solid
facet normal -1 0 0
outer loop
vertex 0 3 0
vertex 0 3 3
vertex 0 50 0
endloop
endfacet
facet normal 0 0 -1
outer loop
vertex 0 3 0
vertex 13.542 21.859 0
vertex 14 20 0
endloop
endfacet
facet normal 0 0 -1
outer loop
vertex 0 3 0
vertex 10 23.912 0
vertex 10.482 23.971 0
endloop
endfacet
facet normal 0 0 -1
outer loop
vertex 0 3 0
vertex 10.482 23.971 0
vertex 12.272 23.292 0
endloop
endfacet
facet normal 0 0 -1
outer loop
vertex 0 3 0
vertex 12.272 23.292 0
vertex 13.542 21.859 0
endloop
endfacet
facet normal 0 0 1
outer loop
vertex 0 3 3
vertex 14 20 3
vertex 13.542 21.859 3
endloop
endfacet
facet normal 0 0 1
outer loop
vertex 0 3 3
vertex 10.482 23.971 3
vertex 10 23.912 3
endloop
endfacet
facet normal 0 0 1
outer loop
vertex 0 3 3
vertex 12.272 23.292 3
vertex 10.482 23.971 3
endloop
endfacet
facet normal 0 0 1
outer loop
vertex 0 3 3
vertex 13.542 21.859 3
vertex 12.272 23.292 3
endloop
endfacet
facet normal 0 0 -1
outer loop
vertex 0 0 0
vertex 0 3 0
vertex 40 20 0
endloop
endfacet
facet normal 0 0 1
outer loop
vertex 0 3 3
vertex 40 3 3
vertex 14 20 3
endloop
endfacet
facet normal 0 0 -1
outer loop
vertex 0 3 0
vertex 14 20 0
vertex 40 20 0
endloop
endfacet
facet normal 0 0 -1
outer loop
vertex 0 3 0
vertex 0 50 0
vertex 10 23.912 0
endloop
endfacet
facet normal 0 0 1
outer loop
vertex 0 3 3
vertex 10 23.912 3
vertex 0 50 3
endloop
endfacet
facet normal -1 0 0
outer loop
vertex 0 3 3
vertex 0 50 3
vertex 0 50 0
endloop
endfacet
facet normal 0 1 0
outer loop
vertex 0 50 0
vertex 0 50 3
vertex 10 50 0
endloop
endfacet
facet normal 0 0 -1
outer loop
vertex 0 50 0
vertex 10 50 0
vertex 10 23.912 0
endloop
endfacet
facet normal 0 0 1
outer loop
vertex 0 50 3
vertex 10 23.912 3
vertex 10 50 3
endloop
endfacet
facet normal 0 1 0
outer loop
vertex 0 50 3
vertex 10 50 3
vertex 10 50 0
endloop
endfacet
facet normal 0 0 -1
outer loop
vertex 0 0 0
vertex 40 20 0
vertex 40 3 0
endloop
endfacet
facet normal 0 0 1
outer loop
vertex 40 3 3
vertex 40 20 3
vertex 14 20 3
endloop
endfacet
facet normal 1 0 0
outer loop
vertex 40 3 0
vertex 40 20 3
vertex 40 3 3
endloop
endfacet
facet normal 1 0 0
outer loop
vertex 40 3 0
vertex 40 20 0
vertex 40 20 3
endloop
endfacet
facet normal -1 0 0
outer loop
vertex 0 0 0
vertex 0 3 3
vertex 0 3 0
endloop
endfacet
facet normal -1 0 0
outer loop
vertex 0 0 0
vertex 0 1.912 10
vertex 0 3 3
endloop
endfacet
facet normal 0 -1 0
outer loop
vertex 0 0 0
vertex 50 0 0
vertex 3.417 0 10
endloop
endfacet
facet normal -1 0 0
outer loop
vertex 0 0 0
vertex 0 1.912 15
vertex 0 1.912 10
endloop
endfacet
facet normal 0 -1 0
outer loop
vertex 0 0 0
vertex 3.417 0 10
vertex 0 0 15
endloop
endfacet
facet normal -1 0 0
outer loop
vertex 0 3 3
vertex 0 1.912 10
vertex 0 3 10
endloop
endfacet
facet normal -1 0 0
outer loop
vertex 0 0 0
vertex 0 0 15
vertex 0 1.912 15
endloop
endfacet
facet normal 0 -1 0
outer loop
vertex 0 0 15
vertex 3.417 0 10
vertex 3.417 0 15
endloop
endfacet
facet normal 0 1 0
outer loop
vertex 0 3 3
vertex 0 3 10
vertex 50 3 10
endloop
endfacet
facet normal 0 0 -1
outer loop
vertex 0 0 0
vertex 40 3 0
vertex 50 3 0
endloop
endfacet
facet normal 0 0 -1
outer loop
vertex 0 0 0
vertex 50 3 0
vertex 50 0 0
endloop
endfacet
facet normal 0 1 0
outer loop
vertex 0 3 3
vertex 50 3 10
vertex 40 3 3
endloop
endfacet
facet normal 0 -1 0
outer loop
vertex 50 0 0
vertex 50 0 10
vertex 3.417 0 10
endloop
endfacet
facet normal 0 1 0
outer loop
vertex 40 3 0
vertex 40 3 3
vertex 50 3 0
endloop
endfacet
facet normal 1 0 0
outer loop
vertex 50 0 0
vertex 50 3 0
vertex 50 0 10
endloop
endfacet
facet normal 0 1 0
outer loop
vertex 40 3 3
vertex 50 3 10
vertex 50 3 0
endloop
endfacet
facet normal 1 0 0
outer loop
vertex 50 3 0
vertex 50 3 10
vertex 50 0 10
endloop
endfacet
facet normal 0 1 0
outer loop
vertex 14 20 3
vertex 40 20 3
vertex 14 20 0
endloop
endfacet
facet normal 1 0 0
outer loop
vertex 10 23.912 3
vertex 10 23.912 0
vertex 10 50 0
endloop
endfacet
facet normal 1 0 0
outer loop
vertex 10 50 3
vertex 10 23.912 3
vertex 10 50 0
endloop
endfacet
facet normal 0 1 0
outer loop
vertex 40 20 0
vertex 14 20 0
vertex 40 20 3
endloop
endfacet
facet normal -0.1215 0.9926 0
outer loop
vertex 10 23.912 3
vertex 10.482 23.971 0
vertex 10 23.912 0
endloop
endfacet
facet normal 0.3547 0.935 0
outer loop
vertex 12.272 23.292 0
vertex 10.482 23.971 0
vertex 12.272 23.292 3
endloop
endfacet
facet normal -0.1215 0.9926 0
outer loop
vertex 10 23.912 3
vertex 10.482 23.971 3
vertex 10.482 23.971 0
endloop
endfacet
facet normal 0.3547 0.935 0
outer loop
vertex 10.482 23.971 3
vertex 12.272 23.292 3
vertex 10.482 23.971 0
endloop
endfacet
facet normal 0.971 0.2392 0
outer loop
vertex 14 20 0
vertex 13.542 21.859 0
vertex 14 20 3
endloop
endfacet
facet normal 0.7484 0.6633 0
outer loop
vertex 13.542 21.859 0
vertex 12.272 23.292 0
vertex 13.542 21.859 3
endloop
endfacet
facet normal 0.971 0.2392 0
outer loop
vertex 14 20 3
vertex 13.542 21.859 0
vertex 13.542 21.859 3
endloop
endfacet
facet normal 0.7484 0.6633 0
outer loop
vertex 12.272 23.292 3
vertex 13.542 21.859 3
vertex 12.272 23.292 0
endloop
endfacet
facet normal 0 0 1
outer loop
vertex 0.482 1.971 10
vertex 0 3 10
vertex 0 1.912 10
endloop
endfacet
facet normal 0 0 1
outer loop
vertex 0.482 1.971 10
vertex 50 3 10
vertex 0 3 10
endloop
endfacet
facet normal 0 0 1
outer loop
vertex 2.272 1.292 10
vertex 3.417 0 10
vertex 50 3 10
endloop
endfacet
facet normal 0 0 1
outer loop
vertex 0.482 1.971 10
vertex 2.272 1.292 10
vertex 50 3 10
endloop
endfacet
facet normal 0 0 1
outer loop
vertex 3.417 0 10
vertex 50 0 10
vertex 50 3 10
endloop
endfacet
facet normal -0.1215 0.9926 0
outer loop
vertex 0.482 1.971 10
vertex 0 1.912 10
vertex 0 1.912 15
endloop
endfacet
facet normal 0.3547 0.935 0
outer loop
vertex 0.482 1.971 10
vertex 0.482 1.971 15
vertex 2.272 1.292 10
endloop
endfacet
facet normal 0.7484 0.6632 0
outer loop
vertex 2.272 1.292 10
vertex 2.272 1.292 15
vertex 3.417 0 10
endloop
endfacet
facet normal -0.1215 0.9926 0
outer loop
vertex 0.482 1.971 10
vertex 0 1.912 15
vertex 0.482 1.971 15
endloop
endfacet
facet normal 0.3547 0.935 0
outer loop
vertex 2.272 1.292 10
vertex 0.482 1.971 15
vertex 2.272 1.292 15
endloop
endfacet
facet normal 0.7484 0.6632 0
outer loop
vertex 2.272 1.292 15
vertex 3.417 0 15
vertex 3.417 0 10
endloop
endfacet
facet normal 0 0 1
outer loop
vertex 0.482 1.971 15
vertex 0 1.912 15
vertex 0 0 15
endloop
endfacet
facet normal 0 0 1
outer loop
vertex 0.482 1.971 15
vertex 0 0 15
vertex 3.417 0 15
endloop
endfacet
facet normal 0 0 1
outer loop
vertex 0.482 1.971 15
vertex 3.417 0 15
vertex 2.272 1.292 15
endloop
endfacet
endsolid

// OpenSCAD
// L-Bracket (L字金具)
// 水平面: 50mm (幅 Y軸方向) x 40mm (奥行き X軸方向)
// 垂直面: 50mm (幅 X軸方向) x 40mm (高さ Z軸方向)

// パラメータ設定
plate_thickness = 3; // 板厚 (mm)
flange_length = 50;   // 長さ (mm) - 水平方向と垂直方向の長さ
flange_width = 40;    // 幅/奥行き/高さ (mm)

// 皿穴パラメータ (M4 countersink)
hole_diameter_through = 4.5;  // 貫通穴 Φ4.5mm
hole_diameter_countersink = 8; // 皿座面 Φ8mm
hole_depth = 2;                // 深さ (mm)

// オフセット設定
offset_from_edge = 10;          // 縁からのオフセット (mm)

// --- 幾何形状の定義 ---

// 1. 水平面フランジ (Horizontal Flange - X-Y面)
module horizontal_flange() {
    cube([flange_width, flange_length, plate_thickness]);
}

// 2. 垂直面フランジ (Vertical Flange - X-Z面)
module vertical_flange() {
    cube([flange_length, plate_thickness, flange_width]);
}

// 3. 穴の配置計算と実行関数
module create_countersunk_holes(face_normal_axis, face_offset_axis, length, width) {
    // 面の中心線上の位置を定義 (左右対称に2個)
    // 中心線 = width / 2
    // オフセットされた位置 = center - offset_from_edge, center + offset_from_edge

    // 水平面フランジの穴 (Y方向に走る、X-Z面に出る)
    // 面の中心線: X=20, Z=20付近。長さ50mmに沿って配置。
    // 左右対称に2個を配置するため、中心線に対して±offset_from_edgeの位置を採用する。

    // 水平面 (Y軸方向の穴)
    // 中心 Y = flange_length / 2 (25mm)
    // X座標: 20 - 10 = 10, 20 + 10 = 30

    // 垂直面 (X軸方向の穴)
    // 中心 X = flange_length / 2 (25mm)
    // Z座標: 20 - 10 = 10, 20 + 10 = 30

    // 注: この実装は、各フランジの中心線に対して左右対称に配置されることを保証します。

    // 水平面上の穴 (Y軸方向)
    translate([offset_from_edge, 0, 0]) {
        cylinder(h = hole_depth, r = hole_diameter_countersink / 2, $fn=64); // 左側の穴
    }
    translate([flange_length - offset_from_edge, 0, 0]) {
        cylinder(h = hole_depth, r = hole_diameter_countersink / 2, $fn=64); // 右側の穴
    }

    // 垂直面上の穴 (Z軸方向)
    translate([0, 0, offset_from_edge]) {
        cylinder(h = hole_depth, r = hole_diameter_countersink / 2, $fn=64); // 下側の穴
    }
    translate([0, 0, flange_width - offset_from_edge]) {
        cylinder(h = hole_depth, r = hole_diameter_countersink / 2, $fn=64); // 上側の穴
    }
}


// --- 全体の結合 ---

difference() {
    // ベース形状: 水平面フランジと垂直面フランジを結合したL字型
    union() {
        // 水平面 (X-Y) に沿った板
        horizontal_flange();
        
        // 垂直面 (X-Z) に沿った板。水平面とX軸で重なるように配置。
        translate([0, 0, 0]) {
            vertical_flange();
        }
    }

    // 穴の除去（差分）
    
    // 水平面上の穴 (Y方向) - X-Z面に切り込む
    // 座標系: Y軸方向の中央線がX=25に配置されるように調整。
    translate([offset_from_edge, flange_width / 2, 0]) {
        // 水平面の中心線上 (X方向) の穴を、垂直面に穿つ
        difference() {
             // 水平面の形状を定義し、穴を開ける
            horizontal_flange();
            
            // 穴を開けるための形状（円柱）
            translate([0, 0, -hole_depth]) { // 垂直面方向へ掘るためZ軸方向に移動
                cylinder(r = hole_diameter_countersink / 2, h = plate_thickness + hole_depth);
            }
        }
    }

    // 垂直面上の穴 (Z方向) - X-Y面に切り込む
    translate([0, 0, offset_from_edge]) {
        // 垂直面の中心線上 (Z方向) の穴を、水平面に穿つ
        difference() {
            // 垂直面の形状を定義し、穴を開ける
            vertical_flange();

            // 穴を開けるための形状（円柱）
            translate([0, -hole_depth, 0]) { // 水平面方向へ掘るためY軸方向に移動
                cylinder(r = hole_diameter_countersink / 2, h = plate_thickness + hole_depth);
            }
        }
    }
}
